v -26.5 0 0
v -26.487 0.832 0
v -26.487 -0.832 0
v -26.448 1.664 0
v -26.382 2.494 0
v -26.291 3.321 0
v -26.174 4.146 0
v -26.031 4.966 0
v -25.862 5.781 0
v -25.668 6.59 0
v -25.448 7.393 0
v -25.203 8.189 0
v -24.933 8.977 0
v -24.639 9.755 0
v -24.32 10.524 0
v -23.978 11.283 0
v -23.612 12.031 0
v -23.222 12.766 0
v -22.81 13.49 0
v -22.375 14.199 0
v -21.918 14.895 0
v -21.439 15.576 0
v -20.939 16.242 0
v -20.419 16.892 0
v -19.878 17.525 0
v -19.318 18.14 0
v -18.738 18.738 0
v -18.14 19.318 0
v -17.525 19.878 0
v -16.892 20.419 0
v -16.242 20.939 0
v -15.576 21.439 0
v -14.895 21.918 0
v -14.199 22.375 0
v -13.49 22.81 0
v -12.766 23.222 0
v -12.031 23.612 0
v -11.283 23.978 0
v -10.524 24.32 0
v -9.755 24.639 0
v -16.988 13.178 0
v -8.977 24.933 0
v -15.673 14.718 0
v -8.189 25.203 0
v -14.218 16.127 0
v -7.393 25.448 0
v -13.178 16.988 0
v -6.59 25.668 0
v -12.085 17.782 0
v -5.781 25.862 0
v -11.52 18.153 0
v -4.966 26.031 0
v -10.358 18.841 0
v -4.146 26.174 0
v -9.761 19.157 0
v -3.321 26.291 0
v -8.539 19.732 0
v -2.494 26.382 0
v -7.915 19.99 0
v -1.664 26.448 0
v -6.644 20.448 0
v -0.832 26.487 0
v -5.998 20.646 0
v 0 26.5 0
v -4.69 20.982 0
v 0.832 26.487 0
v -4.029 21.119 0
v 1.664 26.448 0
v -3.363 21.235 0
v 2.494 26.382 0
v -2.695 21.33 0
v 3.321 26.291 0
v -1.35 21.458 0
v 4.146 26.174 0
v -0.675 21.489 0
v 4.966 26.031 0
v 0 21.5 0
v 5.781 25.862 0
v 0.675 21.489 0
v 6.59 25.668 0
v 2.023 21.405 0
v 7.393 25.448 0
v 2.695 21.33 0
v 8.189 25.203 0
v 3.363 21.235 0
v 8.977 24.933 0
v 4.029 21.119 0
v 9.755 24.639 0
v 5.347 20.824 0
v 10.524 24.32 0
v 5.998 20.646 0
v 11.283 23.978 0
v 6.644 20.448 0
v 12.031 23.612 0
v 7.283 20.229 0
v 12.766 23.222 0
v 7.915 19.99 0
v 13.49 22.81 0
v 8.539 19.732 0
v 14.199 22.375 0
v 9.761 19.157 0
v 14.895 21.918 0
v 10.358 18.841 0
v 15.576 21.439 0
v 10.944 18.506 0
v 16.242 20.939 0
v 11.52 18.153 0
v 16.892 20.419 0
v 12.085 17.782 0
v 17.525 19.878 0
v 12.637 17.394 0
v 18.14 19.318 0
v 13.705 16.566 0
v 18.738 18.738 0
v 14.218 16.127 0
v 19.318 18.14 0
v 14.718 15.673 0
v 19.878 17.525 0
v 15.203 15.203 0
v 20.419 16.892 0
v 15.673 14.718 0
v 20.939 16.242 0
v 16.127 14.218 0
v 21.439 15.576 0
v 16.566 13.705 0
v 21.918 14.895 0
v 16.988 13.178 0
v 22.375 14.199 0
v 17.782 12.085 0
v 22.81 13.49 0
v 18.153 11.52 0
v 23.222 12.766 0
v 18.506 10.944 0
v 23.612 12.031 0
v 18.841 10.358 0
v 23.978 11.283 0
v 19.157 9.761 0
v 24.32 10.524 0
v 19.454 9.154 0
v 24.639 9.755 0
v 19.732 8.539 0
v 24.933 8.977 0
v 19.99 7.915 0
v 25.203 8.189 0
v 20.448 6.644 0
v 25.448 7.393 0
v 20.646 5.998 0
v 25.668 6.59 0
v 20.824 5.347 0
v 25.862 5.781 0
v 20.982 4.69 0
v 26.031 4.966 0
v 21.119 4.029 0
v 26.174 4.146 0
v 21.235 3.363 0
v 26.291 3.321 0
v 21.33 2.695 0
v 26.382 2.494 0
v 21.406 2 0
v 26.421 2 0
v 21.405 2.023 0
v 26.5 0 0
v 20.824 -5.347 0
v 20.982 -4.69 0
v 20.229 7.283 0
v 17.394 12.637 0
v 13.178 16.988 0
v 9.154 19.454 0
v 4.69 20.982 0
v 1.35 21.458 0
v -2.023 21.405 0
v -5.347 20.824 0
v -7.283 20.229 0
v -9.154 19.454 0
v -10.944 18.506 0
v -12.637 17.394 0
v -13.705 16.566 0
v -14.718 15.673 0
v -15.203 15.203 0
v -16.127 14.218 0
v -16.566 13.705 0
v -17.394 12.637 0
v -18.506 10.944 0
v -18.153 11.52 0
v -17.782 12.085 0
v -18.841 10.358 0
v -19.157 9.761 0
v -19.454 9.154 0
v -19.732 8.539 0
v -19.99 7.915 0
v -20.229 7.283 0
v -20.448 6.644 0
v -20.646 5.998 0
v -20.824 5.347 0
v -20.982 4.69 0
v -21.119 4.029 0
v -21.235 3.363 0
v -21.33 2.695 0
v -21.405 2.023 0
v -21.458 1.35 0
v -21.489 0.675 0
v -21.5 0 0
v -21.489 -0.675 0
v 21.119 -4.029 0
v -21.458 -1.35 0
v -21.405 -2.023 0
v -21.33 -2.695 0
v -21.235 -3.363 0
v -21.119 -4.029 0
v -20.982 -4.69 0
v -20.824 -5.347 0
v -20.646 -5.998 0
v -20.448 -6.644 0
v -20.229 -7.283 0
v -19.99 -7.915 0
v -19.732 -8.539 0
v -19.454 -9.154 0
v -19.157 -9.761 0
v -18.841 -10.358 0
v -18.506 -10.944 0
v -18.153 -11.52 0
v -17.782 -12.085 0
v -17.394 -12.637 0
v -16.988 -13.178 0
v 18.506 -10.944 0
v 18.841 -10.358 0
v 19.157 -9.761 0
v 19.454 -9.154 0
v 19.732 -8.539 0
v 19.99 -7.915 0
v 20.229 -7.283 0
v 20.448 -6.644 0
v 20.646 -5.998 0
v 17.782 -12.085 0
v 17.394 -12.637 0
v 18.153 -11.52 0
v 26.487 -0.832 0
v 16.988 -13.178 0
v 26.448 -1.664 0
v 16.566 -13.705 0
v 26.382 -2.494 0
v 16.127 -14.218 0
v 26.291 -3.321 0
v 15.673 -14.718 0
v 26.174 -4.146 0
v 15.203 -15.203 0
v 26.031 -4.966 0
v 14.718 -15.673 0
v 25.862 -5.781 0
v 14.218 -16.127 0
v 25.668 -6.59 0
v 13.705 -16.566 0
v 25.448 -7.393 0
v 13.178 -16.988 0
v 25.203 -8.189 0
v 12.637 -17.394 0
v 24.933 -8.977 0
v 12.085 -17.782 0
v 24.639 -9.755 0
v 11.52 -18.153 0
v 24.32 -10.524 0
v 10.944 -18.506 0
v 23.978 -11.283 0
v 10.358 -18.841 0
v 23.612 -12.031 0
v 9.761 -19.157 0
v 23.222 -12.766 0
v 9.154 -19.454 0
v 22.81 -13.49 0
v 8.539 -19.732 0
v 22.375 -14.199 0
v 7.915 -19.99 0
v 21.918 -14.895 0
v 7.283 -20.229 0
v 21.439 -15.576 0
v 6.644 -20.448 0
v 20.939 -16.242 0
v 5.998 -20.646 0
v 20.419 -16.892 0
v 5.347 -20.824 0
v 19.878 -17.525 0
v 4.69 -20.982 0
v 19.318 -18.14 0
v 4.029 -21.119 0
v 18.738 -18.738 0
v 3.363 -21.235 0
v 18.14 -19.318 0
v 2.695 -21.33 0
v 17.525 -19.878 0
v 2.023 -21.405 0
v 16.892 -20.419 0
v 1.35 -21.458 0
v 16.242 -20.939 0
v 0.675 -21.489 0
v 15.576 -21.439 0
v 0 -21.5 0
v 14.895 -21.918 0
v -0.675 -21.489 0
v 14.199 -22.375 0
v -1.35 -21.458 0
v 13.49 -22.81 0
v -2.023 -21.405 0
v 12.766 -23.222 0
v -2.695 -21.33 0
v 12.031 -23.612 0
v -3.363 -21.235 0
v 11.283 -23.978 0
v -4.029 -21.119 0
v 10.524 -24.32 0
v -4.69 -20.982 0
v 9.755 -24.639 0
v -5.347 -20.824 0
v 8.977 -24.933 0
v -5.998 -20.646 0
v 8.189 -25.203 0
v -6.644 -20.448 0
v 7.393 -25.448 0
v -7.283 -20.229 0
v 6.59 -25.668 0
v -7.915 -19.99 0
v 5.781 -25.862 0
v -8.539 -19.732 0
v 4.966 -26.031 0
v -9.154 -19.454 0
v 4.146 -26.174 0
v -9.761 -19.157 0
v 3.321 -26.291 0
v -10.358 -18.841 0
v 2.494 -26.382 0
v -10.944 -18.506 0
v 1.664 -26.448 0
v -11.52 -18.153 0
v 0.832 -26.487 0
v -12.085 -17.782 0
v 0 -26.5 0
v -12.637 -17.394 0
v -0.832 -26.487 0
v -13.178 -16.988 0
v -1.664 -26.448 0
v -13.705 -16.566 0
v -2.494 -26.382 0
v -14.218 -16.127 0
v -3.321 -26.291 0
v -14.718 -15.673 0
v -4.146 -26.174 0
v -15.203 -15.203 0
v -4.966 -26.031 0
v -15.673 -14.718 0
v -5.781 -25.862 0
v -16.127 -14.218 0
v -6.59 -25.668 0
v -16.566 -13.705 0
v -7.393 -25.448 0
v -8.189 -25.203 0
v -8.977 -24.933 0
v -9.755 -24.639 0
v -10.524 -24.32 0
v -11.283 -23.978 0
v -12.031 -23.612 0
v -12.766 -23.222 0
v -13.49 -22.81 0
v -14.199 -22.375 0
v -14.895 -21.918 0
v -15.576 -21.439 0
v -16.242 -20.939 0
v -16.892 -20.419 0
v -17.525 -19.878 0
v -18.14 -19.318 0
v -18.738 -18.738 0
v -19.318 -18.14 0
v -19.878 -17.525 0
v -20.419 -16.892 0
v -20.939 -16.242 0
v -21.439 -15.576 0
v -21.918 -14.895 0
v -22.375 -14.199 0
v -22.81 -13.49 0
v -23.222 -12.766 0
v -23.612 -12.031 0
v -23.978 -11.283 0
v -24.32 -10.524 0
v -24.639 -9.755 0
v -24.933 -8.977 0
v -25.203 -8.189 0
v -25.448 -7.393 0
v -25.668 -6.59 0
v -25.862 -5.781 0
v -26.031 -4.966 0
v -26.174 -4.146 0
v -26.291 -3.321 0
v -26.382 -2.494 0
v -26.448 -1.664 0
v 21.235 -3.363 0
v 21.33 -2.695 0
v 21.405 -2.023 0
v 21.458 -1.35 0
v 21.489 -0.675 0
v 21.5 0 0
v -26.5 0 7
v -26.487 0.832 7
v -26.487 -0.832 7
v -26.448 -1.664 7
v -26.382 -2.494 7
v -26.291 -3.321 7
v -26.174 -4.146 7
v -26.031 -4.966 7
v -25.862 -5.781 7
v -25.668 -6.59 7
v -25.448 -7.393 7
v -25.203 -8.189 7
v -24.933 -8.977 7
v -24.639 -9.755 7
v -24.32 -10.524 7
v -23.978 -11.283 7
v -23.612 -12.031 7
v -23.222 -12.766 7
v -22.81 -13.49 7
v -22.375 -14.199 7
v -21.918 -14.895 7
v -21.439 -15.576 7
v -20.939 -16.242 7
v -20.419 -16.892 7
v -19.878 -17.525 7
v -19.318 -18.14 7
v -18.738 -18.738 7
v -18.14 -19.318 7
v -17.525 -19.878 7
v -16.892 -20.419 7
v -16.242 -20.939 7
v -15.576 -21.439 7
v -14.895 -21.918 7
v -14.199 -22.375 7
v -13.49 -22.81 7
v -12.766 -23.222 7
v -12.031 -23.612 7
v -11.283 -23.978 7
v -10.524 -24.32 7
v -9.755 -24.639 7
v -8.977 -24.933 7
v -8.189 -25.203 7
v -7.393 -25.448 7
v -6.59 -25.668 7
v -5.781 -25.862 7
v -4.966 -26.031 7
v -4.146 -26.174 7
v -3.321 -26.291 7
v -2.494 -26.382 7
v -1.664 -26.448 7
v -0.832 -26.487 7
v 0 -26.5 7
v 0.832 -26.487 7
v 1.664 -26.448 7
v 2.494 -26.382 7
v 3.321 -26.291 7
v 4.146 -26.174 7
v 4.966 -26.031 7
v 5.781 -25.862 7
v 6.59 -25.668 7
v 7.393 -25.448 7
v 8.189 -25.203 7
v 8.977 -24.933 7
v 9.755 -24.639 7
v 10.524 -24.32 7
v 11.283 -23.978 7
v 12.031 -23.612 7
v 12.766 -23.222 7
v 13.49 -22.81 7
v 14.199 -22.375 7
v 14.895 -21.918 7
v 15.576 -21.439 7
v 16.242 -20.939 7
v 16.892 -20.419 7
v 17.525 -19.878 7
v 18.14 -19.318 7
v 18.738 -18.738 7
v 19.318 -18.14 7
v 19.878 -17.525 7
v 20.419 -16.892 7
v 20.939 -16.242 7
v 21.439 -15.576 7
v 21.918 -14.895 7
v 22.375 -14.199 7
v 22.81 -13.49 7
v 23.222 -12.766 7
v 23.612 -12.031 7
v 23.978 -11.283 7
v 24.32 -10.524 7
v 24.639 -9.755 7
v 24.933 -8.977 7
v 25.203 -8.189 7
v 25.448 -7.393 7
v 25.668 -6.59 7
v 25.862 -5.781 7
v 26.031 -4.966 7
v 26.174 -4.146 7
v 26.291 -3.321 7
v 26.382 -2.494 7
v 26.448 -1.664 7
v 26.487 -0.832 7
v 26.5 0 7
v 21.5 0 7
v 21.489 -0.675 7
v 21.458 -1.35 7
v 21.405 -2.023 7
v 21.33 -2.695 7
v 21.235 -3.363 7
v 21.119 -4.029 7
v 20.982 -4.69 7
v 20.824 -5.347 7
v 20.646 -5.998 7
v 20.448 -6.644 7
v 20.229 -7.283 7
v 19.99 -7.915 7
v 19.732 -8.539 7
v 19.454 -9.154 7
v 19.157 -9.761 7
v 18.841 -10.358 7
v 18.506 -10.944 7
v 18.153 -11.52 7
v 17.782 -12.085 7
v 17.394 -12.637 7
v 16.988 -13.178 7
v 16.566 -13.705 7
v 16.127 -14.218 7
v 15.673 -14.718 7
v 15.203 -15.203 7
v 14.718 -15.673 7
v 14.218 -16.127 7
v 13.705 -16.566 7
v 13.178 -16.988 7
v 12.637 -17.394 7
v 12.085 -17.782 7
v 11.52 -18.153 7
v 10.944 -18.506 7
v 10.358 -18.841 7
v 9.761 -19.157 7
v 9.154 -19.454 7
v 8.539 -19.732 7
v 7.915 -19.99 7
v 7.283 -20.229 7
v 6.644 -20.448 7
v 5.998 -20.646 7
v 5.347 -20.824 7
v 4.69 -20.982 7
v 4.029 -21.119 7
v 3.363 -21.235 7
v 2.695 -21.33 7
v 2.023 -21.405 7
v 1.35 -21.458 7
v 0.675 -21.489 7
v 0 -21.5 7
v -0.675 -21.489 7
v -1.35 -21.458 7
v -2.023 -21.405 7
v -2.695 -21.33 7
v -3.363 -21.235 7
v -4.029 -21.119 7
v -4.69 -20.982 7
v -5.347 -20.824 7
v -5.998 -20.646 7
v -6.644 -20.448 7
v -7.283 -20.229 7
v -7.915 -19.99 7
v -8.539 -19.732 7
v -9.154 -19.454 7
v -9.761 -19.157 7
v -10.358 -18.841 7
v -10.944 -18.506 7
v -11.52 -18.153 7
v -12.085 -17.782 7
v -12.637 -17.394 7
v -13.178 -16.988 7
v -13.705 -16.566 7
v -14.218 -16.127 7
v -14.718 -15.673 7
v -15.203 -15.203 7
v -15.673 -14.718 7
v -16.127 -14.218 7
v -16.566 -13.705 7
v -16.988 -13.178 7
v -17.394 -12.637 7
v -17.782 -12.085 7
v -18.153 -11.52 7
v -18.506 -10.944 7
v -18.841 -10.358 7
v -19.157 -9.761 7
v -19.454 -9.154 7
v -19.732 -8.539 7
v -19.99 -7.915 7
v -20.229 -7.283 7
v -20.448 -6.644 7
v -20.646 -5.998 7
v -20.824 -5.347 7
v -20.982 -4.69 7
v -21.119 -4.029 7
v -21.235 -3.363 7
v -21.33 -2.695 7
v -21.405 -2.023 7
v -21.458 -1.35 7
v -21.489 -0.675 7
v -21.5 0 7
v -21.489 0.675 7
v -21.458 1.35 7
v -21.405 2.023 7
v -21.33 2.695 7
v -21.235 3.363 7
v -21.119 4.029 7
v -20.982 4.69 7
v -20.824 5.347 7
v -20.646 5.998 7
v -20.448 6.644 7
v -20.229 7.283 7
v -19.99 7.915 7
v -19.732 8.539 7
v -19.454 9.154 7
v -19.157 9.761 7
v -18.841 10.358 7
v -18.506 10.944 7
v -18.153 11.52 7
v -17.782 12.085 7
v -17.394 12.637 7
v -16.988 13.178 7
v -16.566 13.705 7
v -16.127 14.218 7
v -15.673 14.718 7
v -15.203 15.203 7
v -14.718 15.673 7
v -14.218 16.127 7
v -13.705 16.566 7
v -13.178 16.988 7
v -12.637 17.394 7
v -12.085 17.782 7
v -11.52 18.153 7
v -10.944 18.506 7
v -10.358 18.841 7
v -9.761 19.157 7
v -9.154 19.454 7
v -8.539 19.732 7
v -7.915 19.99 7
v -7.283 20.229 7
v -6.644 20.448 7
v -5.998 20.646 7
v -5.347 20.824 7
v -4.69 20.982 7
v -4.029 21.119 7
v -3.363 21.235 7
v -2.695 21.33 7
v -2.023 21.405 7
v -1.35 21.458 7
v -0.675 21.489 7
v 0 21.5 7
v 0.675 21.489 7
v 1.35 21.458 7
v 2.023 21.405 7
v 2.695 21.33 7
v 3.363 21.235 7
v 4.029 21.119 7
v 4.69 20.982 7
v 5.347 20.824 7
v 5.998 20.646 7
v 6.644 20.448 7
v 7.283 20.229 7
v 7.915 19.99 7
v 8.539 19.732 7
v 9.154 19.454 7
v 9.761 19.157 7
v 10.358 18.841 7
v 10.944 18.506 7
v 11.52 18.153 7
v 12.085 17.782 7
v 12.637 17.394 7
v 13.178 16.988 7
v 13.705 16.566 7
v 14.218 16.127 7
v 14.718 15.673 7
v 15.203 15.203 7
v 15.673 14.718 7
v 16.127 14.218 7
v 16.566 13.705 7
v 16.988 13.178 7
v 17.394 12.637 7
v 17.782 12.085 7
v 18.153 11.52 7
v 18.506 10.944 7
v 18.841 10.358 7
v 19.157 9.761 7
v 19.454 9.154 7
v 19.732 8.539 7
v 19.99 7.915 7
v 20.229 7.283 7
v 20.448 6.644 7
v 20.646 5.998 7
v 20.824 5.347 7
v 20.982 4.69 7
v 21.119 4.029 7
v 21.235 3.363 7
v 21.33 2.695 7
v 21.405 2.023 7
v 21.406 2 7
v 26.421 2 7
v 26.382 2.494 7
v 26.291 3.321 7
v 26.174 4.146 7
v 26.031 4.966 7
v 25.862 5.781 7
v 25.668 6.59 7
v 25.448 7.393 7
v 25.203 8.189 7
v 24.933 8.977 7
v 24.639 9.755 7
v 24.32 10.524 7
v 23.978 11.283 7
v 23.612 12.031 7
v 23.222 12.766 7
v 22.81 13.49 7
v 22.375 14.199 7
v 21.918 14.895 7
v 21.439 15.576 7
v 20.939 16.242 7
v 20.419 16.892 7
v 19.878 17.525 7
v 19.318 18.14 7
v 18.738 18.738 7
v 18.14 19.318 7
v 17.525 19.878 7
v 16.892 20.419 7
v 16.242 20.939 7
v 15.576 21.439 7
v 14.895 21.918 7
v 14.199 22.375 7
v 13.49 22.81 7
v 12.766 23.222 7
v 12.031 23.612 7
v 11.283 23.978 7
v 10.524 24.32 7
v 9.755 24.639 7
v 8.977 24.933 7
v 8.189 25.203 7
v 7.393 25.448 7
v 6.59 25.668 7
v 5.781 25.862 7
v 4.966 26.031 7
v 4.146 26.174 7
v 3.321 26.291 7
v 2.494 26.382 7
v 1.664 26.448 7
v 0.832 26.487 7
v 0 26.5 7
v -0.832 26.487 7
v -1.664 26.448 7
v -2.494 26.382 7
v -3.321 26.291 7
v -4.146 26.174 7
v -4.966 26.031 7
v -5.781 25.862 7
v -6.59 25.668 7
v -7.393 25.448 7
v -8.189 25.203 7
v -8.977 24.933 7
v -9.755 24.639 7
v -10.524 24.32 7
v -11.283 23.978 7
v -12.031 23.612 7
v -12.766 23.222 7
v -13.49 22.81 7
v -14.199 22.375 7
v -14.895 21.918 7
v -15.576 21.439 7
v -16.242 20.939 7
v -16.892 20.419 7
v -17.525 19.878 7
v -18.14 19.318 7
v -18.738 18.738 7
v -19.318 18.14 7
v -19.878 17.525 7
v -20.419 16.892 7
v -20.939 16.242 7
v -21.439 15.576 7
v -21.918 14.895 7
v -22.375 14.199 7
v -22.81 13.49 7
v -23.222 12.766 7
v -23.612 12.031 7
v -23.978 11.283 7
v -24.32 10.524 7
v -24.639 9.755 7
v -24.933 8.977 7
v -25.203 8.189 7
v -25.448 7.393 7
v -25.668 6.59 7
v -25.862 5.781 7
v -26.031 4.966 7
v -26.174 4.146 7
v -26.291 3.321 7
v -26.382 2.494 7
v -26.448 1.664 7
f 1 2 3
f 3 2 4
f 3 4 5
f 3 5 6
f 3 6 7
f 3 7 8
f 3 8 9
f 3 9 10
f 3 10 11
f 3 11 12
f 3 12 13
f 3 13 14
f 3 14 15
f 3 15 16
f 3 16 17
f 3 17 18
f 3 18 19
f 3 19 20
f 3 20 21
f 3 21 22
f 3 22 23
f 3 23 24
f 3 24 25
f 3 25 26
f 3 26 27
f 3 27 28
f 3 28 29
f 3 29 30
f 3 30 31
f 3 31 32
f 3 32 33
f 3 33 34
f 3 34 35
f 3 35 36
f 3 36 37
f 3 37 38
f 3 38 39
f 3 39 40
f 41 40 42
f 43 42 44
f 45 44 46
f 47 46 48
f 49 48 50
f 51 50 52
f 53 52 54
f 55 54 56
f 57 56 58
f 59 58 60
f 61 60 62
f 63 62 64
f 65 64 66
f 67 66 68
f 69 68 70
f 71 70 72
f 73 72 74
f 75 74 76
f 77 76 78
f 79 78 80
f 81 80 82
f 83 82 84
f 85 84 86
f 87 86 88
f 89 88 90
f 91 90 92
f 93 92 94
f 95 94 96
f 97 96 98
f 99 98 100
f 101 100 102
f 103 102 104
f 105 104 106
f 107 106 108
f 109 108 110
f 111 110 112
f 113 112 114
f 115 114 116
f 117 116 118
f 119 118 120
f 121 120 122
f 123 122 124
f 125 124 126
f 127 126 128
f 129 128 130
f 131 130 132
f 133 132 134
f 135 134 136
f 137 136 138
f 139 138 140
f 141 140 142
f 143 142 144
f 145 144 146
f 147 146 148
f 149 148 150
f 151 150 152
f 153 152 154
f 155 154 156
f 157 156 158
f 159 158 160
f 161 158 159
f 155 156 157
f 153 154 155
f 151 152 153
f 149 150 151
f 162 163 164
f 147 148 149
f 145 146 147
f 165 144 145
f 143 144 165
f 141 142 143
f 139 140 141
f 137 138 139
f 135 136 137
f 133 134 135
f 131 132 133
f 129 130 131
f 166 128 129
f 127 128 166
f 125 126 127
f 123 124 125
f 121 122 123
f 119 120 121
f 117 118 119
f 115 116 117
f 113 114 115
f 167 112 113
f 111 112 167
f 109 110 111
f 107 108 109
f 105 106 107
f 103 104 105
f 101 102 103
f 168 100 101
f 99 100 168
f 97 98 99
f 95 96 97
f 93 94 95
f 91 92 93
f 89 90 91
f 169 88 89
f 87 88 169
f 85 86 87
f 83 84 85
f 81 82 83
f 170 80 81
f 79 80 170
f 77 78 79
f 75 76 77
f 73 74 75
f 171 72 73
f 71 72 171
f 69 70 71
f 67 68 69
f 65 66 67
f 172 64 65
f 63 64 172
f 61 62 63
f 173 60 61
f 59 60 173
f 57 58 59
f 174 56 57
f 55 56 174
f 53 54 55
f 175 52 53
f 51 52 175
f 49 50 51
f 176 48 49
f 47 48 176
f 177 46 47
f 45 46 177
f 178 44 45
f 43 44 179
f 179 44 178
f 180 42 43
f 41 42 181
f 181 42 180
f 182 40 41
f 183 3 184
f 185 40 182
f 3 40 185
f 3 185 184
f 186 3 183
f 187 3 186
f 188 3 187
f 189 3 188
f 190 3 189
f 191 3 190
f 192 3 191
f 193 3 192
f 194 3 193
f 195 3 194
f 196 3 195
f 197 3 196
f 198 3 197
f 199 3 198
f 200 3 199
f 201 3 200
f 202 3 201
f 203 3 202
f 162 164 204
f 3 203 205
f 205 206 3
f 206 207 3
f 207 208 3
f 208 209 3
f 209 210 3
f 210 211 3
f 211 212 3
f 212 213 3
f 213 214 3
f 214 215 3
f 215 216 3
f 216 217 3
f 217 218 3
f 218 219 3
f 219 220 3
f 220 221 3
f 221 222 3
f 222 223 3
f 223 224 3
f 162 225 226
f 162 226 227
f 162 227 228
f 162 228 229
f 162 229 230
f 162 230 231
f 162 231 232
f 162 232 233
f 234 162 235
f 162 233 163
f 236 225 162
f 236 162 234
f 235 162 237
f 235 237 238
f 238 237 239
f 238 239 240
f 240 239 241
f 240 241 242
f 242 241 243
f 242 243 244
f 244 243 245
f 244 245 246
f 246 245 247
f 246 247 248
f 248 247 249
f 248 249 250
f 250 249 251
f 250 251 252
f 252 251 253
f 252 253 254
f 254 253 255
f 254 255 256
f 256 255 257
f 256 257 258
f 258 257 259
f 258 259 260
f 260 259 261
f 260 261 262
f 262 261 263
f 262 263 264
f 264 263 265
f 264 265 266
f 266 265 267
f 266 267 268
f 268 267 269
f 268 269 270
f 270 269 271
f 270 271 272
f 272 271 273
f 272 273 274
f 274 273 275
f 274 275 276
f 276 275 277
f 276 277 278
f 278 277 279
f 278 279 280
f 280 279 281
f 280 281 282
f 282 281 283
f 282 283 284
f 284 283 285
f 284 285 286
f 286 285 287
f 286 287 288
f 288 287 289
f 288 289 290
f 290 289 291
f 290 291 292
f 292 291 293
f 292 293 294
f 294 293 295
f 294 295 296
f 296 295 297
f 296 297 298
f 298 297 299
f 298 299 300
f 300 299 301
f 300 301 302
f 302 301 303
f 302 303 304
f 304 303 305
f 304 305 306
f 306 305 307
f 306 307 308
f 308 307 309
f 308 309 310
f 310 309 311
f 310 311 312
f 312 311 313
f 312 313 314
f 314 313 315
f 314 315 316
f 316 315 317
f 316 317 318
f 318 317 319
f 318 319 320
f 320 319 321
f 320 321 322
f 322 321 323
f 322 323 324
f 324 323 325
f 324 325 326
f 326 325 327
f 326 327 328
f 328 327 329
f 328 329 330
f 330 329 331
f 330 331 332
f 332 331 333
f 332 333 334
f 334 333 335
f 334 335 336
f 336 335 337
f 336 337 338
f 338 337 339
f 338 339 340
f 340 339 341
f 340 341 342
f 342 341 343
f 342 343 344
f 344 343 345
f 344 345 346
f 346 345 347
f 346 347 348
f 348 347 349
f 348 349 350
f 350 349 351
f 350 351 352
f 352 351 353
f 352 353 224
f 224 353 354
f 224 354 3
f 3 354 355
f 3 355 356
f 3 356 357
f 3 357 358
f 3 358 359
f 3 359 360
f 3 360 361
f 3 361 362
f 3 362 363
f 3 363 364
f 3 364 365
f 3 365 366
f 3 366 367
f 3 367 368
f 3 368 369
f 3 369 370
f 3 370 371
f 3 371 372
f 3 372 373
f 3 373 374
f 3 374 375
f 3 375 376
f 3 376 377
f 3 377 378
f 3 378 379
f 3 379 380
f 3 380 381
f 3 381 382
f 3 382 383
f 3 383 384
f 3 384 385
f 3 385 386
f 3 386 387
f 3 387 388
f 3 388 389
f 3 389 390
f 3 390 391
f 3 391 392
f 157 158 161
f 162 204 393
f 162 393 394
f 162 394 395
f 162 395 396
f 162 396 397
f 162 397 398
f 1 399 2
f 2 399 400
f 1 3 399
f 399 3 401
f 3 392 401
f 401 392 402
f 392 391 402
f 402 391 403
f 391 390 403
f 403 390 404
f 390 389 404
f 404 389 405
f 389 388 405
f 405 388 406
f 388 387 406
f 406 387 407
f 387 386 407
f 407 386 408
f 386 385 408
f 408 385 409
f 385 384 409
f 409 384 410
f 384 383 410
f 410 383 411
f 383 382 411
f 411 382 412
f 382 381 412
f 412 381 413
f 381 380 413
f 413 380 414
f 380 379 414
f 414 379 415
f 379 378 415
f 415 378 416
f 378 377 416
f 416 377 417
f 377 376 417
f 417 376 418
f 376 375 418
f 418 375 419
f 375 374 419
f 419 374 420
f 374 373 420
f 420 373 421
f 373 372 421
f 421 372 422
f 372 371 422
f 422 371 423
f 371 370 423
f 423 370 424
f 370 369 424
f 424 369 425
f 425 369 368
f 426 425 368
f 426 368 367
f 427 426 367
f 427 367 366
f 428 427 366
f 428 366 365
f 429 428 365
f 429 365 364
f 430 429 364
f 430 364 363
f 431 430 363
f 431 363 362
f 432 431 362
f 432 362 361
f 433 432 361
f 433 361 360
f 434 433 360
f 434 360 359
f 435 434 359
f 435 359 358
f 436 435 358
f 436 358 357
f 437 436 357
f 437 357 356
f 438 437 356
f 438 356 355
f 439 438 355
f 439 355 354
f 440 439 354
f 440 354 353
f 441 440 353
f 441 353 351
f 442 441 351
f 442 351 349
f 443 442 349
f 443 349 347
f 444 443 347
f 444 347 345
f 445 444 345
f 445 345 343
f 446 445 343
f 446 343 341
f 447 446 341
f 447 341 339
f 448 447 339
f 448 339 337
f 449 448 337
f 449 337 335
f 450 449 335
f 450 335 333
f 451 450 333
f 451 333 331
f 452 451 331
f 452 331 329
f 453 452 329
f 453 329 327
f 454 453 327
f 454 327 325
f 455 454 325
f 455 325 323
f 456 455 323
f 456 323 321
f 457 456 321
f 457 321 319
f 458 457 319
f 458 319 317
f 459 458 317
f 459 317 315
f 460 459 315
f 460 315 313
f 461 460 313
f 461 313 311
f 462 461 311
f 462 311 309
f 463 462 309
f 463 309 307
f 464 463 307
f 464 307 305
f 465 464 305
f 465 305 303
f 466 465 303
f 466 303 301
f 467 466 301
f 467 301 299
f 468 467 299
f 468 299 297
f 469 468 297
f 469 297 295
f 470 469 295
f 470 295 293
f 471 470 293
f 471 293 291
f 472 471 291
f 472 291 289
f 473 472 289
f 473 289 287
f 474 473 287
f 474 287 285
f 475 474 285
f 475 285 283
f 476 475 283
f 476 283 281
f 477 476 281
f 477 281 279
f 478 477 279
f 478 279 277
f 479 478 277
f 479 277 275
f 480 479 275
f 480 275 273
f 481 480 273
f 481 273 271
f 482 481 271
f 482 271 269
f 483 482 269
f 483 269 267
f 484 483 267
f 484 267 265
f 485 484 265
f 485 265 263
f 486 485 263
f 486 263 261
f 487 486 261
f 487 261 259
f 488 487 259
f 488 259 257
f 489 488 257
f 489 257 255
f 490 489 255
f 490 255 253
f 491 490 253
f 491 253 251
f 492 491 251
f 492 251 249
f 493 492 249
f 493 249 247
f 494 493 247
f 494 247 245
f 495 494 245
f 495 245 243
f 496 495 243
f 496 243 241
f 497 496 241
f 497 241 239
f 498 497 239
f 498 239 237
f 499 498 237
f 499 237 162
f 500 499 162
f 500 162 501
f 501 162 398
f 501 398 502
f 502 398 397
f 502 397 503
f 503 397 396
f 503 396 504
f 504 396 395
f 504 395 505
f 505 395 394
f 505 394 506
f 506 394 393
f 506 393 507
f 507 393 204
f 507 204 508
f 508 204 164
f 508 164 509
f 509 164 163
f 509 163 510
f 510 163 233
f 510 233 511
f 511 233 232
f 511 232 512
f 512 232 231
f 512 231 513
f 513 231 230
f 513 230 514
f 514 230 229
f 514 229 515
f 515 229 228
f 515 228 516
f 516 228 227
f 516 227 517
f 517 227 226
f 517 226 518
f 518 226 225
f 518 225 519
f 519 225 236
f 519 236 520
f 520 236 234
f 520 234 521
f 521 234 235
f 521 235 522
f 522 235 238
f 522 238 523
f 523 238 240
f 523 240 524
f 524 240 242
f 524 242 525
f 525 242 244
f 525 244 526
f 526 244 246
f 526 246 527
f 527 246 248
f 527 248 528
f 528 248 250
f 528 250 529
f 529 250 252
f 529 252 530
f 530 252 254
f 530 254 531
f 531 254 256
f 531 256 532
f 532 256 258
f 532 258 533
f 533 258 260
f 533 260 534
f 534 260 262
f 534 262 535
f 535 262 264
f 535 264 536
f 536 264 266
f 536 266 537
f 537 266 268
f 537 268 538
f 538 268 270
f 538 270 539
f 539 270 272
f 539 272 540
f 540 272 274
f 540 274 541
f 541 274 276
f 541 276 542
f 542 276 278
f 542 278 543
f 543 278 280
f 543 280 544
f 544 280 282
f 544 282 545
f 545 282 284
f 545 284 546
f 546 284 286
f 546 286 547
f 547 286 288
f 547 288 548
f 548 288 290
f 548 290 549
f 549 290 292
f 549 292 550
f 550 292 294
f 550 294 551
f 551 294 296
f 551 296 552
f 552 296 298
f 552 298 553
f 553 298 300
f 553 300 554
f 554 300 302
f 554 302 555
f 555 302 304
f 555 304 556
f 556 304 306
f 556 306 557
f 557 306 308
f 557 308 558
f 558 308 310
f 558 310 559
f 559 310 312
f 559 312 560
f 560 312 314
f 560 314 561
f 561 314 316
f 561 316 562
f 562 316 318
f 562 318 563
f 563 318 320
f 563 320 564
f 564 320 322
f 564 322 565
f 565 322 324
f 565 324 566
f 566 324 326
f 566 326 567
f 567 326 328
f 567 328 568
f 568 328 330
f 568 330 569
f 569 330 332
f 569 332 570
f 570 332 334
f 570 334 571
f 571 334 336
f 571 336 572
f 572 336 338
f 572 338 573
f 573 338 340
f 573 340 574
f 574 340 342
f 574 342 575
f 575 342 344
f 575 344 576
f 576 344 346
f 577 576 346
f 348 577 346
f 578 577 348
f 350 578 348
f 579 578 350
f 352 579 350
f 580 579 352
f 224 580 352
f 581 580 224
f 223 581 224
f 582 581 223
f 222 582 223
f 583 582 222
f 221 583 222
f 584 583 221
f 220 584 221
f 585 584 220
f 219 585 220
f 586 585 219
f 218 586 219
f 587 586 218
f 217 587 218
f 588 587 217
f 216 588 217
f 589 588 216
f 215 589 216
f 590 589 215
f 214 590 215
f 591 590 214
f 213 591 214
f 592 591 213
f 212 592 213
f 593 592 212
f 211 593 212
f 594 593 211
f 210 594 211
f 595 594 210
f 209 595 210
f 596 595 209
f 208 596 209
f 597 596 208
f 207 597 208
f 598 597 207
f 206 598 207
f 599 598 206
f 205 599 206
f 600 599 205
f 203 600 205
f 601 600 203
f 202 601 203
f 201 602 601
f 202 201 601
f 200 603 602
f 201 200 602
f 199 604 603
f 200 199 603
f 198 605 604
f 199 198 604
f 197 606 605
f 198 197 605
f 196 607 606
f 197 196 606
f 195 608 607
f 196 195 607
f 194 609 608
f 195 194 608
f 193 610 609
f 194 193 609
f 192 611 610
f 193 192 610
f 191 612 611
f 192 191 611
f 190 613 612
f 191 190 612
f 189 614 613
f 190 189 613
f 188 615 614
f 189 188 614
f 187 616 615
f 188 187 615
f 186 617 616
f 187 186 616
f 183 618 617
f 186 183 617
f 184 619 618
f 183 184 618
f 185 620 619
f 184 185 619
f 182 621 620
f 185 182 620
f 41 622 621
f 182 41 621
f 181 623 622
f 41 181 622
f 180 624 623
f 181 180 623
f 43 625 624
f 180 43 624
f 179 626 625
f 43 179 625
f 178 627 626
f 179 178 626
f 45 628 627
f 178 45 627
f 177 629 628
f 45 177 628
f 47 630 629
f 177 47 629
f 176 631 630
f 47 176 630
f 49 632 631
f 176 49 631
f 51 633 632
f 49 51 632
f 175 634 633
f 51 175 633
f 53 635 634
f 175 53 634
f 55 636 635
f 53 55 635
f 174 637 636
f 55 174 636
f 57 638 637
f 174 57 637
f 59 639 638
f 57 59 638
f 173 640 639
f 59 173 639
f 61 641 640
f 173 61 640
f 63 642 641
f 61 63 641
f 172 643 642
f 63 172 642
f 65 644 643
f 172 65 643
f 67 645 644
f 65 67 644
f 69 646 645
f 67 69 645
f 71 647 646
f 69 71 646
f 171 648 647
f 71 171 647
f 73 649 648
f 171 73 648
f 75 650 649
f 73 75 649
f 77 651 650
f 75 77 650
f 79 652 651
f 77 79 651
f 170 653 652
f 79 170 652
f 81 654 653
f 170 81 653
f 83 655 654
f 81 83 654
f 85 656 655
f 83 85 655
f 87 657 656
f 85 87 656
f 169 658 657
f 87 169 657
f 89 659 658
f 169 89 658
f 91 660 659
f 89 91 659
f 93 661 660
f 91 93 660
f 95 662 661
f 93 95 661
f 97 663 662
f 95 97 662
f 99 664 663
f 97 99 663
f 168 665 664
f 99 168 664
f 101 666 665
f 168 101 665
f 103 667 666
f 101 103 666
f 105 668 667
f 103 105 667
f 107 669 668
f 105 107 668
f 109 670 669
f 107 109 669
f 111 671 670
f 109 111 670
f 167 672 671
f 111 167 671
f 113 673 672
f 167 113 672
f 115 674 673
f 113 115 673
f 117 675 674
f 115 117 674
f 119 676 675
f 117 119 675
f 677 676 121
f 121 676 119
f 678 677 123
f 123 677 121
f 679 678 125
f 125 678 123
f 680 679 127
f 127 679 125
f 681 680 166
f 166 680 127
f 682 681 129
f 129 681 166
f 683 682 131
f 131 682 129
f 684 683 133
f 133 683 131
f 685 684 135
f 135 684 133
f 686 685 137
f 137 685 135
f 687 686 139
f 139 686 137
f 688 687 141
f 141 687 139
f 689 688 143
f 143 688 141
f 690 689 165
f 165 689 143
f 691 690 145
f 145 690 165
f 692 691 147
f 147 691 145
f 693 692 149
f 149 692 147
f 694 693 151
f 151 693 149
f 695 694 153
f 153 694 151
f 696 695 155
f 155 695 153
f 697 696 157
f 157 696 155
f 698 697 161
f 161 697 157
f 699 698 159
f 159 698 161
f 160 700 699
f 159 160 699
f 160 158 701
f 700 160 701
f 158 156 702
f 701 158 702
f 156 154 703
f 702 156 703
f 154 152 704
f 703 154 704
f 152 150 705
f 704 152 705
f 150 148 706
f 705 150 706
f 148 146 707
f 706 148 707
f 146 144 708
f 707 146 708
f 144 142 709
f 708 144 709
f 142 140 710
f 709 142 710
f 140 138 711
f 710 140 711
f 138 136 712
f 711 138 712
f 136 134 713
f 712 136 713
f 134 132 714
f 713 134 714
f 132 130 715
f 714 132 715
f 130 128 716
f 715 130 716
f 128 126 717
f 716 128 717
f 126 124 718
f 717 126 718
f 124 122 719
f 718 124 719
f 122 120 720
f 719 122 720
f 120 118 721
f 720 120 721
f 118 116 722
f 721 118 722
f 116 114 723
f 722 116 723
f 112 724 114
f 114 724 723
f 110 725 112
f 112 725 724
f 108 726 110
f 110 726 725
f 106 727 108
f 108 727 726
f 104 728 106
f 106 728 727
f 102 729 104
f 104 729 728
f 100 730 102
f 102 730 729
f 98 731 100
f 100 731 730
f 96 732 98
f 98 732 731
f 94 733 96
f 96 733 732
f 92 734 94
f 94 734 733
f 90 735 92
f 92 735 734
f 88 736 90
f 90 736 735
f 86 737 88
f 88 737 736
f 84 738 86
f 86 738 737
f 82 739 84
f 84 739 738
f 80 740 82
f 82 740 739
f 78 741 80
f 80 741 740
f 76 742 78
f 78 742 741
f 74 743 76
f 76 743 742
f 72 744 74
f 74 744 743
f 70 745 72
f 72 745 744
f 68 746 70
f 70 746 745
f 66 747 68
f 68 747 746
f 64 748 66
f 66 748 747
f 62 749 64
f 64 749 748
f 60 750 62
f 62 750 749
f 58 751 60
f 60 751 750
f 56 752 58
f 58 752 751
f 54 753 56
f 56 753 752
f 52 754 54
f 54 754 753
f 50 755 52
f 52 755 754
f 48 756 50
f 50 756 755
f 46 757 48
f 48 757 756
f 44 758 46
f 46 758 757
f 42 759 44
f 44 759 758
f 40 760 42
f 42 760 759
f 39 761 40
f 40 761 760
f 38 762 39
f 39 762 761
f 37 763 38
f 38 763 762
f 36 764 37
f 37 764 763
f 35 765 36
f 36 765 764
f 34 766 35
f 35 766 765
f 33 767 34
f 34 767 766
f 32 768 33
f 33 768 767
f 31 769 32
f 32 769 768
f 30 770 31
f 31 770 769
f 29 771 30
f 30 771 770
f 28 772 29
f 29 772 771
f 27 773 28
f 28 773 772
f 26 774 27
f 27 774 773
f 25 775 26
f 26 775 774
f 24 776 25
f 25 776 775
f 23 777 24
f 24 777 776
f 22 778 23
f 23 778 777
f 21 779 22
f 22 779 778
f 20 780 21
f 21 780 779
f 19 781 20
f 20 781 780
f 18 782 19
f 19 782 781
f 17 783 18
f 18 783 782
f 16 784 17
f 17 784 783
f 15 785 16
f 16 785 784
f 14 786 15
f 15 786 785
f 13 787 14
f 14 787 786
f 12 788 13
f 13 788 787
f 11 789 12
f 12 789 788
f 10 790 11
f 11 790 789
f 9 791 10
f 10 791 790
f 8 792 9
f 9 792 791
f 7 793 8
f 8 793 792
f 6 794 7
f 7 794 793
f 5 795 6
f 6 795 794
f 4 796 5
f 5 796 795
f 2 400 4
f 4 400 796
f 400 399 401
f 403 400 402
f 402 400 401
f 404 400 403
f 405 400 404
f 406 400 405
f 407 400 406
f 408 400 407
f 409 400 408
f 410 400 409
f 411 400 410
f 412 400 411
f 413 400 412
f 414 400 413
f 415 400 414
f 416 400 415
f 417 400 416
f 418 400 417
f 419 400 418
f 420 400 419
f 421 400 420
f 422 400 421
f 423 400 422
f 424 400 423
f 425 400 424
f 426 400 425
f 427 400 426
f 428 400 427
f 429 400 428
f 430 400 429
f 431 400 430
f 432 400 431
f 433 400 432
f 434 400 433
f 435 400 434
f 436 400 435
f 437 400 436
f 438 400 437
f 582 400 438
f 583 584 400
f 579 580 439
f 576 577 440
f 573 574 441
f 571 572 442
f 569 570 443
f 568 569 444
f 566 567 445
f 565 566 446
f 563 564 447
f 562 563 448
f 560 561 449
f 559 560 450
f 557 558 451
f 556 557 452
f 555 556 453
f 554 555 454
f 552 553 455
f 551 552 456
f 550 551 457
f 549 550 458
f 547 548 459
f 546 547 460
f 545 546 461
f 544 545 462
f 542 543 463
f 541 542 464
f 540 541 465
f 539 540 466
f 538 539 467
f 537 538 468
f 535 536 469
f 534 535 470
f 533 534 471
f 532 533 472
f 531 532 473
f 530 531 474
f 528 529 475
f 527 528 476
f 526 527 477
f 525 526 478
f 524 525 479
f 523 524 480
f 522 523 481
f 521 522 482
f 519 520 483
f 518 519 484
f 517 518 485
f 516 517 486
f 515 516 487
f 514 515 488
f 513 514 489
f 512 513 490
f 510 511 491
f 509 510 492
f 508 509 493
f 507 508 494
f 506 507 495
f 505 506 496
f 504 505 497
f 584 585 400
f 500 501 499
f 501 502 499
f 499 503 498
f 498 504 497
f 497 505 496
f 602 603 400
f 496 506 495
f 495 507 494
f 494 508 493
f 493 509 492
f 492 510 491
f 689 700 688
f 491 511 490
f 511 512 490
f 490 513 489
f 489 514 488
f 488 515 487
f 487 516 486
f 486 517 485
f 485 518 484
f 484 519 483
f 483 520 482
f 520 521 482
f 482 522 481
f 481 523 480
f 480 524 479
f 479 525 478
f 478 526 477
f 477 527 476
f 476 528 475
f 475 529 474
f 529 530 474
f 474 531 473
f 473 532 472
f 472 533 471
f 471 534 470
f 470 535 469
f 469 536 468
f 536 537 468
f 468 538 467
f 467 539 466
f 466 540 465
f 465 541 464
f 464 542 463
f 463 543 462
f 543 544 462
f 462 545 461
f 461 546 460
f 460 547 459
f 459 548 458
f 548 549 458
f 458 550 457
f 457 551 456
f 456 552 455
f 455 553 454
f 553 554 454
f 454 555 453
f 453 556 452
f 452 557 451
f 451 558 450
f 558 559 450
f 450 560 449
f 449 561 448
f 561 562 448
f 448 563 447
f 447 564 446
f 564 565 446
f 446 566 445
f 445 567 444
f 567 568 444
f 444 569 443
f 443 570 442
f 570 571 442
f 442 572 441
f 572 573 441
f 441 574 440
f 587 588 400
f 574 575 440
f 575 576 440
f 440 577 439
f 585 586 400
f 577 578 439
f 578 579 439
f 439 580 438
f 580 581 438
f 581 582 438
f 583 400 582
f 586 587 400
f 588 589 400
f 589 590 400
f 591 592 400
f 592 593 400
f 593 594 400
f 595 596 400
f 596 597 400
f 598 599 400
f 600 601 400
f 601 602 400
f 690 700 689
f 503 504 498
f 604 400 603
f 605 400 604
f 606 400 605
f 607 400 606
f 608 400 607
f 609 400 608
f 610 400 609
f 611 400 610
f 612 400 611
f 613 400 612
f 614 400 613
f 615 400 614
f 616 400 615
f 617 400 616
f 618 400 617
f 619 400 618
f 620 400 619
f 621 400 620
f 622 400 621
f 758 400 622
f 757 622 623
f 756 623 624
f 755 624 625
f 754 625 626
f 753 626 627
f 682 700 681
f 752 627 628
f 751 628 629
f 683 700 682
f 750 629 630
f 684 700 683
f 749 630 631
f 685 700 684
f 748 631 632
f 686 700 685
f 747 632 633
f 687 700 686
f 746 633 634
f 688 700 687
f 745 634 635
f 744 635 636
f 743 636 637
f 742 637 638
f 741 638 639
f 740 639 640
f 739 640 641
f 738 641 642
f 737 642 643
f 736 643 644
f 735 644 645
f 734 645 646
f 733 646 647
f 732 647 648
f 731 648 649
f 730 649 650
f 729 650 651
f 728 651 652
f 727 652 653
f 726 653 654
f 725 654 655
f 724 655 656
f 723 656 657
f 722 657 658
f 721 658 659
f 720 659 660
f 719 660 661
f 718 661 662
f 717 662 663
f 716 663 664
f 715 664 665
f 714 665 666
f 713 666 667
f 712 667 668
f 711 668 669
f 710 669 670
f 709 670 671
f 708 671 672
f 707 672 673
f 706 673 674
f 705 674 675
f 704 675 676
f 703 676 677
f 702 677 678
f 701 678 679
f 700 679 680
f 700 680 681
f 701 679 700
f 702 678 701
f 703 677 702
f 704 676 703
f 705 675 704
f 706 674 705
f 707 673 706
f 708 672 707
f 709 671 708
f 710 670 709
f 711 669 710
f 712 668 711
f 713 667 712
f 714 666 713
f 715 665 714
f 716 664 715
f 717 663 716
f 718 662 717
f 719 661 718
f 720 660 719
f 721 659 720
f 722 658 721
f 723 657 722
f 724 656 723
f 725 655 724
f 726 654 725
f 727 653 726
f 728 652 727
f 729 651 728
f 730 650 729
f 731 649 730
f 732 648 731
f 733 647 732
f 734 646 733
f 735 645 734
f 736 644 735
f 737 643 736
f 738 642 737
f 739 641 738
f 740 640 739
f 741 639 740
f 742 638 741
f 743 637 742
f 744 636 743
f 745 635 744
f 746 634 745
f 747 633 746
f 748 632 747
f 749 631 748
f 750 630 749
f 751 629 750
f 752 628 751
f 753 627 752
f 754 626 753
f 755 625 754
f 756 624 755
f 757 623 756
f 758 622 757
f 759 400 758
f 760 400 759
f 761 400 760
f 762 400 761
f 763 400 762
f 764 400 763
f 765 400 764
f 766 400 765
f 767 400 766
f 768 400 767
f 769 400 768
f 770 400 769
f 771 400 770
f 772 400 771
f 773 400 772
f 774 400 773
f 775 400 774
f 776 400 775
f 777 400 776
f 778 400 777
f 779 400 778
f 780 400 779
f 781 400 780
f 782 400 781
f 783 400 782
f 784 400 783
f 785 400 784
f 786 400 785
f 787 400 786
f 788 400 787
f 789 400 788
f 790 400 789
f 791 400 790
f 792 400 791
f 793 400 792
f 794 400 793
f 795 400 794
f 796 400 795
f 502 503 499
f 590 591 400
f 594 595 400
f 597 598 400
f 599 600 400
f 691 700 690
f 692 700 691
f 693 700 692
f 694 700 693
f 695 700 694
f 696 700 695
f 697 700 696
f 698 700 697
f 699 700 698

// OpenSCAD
// Rolling Pin Spacers
// all measurements are in mm

// Diameter of rolling pin in mm (best if slightly smaller than actual)
pin = 43/2;

// How thick you want the dough to be in mm
Dough = 5;

difference () {
   cylinder (h=7,r=pin+Dough, $fn = 200);
   translate ([0,0,-2]) cylinder (h=14,r=pin, $fn = 200);
   translate ([0,0,-2]) cube([pin+Dough+2,2,14]);
}
